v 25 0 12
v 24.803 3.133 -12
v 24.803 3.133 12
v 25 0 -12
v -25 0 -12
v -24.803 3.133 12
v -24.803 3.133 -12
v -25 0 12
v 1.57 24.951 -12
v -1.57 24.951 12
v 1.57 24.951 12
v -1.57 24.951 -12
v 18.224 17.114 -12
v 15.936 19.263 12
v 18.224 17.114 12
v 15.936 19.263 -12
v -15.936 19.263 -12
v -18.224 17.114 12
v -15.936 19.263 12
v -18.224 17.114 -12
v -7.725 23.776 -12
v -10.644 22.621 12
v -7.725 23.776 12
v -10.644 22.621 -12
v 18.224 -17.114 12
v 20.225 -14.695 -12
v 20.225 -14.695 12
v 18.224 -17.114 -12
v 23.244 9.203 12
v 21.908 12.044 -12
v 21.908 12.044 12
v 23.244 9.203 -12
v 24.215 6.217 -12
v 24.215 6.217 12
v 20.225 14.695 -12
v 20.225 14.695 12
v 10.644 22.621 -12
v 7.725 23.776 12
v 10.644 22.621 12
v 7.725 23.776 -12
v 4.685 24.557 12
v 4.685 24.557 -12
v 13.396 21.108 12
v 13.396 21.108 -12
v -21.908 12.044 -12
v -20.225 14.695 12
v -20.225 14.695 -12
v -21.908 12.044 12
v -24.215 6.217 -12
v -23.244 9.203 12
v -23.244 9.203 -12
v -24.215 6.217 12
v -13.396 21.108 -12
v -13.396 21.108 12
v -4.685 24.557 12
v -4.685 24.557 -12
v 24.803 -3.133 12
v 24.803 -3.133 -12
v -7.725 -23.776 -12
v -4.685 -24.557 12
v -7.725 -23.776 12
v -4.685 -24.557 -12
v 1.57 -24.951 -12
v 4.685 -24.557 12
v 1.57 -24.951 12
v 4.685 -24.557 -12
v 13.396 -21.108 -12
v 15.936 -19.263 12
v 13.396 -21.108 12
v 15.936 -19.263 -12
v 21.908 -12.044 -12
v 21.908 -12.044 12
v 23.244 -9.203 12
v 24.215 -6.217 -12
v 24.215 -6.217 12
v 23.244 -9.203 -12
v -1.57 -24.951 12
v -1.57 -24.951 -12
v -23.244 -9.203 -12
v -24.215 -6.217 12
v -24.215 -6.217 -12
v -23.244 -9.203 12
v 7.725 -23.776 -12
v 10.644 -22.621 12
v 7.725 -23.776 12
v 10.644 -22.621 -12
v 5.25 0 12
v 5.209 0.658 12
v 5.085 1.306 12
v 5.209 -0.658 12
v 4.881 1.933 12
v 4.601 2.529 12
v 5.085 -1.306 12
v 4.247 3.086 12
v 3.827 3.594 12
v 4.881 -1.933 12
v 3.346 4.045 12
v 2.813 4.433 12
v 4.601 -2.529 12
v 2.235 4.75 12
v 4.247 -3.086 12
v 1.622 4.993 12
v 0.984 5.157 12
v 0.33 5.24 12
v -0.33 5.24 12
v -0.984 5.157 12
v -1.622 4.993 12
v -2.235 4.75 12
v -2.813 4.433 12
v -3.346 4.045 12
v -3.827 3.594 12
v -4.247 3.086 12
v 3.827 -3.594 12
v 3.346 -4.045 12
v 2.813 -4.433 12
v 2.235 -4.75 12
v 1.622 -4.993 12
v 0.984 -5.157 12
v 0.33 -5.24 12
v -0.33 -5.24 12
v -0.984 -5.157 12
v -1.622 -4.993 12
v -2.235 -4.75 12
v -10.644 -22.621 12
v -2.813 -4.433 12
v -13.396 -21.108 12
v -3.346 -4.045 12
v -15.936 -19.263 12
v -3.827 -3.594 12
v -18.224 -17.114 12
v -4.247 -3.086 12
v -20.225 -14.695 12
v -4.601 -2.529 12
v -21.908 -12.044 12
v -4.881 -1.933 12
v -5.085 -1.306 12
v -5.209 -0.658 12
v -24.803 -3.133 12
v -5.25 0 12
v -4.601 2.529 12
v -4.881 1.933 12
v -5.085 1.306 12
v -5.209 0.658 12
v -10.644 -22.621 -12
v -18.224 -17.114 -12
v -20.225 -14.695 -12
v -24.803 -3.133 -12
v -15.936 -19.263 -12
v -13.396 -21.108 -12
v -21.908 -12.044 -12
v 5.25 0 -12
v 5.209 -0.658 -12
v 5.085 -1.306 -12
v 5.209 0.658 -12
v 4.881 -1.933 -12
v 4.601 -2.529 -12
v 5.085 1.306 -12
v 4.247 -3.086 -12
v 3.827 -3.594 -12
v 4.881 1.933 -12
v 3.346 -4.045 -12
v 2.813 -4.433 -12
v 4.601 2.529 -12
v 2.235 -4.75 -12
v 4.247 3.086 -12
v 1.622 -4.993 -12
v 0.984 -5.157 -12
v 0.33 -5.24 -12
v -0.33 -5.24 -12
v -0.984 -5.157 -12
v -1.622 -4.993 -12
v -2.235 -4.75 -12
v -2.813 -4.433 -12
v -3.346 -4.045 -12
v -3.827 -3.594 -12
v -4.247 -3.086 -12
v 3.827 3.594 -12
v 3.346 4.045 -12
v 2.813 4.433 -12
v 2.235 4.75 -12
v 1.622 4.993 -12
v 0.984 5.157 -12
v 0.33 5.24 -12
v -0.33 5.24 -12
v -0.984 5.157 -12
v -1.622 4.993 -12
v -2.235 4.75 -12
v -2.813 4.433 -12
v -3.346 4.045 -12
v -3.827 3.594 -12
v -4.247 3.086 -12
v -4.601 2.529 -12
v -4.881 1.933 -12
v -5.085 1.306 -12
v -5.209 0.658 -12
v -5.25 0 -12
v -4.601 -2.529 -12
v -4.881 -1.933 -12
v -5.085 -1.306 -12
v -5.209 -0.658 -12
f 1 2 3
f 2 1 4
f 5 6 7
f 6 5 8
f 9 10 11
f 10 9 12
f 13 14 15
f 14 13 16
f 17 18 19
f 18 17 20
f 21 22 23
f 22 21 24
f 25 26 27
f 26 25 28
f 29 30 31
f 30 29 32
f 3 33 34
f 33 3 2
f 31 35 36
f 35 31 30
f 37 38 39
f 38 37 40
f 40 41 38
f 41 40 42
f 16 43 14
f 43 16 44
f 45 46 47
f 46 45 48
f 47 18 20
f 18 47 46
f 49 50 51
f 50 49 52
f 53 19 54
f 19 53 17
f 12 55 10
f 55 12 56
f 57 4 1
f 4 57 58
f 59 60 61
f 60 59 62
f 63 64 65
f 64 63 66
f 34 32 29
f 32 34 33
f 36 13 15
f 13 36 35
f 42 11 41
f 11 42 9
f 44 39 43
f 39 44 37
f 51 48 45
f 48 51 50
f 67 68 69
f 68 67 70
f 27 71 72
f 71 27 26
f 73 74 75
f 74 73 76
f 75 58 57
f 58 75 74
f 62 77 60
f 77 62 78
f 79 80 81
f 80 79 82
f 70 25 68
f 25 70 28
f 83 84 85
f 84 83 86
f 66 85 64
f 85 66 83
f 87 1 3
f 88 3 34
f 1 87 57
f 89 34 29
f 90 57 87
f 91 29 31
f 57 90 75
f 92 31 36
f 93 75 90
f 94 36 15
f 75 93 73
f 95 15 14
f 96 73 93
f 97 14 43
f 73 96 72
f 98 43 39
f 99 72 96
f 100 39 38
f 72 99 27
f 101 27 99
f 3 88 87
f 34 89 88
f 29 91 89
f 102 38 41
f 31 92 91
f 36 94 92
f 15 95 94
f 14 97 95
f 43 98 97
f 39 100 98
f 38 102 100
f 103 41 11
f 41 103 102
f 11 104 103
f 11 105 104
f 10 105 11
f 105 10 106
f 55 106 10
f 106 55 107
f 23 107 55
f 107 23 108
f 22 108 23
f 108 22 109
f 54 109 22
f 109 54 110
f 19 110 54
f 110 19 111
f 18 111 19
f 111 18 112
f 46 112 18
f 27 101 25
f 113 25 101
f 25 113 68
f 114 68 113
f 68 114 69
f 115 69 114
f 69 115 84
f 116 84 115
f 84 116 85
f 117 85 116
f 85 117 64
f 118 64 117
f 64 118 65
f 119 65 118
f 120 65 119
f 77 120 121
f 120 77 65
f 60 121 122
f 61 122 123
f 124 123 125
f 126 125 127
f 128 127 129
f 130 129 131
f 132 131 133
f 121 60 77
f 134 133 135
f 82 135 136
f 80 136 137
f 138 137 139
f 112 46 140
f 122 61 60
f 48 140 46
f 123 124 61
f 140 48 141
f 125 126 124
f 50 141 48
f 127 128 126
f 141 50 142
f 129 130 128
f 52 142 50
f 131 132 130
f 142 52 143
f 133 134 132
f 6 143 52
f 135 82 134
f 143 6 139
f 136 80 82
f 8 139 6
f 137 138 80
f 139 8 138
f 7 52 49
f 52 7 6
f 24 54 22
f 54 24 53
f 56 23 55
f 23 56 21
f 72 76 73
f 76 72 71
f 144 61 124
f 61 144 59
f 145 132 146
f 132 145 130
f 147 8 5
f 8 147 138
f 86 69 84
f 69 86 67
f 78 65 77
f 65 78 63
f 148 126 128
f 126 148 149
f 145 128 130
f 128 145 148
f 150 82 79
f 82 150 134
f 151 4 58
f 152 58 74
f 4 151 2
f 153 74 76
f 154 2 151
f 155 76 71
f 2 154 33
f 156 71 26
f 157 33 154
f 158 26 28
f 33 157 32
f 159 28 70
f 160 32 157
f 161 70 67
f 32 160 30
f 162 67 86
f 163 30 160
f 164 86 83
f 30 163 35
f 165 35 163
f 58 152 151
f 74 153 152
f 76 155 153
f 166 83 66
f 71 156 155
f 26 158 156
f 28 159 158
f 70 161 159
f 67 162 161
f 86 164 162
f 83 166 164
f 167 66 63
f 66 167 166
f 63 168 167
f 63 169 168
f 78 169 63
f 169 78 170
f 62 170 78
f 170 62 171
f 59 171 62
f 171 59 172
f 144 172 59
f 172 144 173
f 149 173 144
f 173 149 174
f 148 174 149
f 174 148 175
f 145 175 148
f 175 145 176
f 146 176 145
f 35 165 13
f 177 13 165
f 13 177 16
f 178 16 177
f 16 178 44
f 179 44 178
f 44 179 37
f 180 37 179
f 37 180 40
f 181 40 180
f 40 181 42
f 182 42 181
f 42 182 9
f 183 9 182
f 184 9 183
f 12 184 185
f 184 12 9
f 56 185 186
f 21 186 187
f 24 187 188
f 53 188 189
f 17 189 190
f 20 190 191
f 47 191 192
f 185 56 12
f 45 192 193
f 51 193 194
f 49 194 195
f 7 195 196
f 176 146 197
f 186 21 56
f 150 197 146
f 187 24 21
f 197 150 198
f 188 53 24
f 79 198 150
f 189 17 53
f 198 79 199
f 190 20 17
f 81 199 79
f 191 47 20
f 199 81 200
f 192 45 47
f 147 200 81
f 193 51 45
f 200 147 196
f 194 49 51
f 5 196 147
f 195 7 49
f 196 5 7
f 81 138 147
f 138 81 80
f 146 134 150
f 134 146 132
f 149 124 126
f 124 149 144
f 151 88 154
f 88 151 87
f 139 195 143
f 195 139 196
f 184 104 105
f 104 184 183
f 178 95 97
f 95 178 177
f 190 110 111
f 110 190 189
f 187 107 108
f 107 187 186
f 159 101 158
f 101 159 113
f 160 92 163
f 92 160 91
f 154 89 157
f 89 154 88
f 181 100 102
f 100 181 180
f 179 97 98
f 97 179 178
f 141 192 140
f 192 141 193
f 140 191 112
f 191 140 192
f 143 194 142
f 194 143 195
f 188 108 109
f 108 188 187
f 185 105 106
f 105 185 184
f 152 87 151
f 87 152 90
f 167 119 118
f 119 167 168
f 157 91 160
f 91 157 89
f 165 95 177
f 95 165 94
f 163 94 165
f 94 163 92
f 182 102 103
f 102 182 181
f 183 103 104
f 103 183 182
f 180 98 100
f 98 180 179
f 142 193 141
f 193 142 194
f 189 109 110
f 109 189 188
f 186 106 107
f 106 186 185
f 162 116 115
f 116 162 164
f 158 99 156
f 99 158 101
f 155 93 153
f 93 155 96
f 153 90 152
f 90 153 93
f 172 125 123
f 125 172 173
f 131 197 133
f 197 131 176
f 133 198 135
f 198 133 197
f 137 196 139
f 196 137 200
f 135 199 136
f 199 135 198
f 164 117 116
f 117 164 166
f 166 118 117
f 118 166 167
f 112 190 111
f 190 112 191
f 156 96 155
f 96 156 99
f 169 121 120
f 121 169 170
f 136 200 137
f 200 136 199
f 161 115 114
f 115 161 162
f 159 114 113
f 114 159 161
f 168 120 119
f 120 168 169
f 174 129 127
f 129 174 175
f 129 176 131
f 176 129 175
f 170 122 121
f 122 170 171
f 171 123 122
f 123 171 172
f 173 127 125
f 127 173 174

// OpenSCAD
$fn = 50;


difference() {
	union() {
		translate(v = [0, 0, -12.0000000000]) {
			cylinder(h = 24, r = 25.0000000000);
		}
	}
	union() {
		translate(v = [0, 0, -100.0000000000]) {
			cylinder(h = 200, r = 5.2500000000);
		}
	}
}
